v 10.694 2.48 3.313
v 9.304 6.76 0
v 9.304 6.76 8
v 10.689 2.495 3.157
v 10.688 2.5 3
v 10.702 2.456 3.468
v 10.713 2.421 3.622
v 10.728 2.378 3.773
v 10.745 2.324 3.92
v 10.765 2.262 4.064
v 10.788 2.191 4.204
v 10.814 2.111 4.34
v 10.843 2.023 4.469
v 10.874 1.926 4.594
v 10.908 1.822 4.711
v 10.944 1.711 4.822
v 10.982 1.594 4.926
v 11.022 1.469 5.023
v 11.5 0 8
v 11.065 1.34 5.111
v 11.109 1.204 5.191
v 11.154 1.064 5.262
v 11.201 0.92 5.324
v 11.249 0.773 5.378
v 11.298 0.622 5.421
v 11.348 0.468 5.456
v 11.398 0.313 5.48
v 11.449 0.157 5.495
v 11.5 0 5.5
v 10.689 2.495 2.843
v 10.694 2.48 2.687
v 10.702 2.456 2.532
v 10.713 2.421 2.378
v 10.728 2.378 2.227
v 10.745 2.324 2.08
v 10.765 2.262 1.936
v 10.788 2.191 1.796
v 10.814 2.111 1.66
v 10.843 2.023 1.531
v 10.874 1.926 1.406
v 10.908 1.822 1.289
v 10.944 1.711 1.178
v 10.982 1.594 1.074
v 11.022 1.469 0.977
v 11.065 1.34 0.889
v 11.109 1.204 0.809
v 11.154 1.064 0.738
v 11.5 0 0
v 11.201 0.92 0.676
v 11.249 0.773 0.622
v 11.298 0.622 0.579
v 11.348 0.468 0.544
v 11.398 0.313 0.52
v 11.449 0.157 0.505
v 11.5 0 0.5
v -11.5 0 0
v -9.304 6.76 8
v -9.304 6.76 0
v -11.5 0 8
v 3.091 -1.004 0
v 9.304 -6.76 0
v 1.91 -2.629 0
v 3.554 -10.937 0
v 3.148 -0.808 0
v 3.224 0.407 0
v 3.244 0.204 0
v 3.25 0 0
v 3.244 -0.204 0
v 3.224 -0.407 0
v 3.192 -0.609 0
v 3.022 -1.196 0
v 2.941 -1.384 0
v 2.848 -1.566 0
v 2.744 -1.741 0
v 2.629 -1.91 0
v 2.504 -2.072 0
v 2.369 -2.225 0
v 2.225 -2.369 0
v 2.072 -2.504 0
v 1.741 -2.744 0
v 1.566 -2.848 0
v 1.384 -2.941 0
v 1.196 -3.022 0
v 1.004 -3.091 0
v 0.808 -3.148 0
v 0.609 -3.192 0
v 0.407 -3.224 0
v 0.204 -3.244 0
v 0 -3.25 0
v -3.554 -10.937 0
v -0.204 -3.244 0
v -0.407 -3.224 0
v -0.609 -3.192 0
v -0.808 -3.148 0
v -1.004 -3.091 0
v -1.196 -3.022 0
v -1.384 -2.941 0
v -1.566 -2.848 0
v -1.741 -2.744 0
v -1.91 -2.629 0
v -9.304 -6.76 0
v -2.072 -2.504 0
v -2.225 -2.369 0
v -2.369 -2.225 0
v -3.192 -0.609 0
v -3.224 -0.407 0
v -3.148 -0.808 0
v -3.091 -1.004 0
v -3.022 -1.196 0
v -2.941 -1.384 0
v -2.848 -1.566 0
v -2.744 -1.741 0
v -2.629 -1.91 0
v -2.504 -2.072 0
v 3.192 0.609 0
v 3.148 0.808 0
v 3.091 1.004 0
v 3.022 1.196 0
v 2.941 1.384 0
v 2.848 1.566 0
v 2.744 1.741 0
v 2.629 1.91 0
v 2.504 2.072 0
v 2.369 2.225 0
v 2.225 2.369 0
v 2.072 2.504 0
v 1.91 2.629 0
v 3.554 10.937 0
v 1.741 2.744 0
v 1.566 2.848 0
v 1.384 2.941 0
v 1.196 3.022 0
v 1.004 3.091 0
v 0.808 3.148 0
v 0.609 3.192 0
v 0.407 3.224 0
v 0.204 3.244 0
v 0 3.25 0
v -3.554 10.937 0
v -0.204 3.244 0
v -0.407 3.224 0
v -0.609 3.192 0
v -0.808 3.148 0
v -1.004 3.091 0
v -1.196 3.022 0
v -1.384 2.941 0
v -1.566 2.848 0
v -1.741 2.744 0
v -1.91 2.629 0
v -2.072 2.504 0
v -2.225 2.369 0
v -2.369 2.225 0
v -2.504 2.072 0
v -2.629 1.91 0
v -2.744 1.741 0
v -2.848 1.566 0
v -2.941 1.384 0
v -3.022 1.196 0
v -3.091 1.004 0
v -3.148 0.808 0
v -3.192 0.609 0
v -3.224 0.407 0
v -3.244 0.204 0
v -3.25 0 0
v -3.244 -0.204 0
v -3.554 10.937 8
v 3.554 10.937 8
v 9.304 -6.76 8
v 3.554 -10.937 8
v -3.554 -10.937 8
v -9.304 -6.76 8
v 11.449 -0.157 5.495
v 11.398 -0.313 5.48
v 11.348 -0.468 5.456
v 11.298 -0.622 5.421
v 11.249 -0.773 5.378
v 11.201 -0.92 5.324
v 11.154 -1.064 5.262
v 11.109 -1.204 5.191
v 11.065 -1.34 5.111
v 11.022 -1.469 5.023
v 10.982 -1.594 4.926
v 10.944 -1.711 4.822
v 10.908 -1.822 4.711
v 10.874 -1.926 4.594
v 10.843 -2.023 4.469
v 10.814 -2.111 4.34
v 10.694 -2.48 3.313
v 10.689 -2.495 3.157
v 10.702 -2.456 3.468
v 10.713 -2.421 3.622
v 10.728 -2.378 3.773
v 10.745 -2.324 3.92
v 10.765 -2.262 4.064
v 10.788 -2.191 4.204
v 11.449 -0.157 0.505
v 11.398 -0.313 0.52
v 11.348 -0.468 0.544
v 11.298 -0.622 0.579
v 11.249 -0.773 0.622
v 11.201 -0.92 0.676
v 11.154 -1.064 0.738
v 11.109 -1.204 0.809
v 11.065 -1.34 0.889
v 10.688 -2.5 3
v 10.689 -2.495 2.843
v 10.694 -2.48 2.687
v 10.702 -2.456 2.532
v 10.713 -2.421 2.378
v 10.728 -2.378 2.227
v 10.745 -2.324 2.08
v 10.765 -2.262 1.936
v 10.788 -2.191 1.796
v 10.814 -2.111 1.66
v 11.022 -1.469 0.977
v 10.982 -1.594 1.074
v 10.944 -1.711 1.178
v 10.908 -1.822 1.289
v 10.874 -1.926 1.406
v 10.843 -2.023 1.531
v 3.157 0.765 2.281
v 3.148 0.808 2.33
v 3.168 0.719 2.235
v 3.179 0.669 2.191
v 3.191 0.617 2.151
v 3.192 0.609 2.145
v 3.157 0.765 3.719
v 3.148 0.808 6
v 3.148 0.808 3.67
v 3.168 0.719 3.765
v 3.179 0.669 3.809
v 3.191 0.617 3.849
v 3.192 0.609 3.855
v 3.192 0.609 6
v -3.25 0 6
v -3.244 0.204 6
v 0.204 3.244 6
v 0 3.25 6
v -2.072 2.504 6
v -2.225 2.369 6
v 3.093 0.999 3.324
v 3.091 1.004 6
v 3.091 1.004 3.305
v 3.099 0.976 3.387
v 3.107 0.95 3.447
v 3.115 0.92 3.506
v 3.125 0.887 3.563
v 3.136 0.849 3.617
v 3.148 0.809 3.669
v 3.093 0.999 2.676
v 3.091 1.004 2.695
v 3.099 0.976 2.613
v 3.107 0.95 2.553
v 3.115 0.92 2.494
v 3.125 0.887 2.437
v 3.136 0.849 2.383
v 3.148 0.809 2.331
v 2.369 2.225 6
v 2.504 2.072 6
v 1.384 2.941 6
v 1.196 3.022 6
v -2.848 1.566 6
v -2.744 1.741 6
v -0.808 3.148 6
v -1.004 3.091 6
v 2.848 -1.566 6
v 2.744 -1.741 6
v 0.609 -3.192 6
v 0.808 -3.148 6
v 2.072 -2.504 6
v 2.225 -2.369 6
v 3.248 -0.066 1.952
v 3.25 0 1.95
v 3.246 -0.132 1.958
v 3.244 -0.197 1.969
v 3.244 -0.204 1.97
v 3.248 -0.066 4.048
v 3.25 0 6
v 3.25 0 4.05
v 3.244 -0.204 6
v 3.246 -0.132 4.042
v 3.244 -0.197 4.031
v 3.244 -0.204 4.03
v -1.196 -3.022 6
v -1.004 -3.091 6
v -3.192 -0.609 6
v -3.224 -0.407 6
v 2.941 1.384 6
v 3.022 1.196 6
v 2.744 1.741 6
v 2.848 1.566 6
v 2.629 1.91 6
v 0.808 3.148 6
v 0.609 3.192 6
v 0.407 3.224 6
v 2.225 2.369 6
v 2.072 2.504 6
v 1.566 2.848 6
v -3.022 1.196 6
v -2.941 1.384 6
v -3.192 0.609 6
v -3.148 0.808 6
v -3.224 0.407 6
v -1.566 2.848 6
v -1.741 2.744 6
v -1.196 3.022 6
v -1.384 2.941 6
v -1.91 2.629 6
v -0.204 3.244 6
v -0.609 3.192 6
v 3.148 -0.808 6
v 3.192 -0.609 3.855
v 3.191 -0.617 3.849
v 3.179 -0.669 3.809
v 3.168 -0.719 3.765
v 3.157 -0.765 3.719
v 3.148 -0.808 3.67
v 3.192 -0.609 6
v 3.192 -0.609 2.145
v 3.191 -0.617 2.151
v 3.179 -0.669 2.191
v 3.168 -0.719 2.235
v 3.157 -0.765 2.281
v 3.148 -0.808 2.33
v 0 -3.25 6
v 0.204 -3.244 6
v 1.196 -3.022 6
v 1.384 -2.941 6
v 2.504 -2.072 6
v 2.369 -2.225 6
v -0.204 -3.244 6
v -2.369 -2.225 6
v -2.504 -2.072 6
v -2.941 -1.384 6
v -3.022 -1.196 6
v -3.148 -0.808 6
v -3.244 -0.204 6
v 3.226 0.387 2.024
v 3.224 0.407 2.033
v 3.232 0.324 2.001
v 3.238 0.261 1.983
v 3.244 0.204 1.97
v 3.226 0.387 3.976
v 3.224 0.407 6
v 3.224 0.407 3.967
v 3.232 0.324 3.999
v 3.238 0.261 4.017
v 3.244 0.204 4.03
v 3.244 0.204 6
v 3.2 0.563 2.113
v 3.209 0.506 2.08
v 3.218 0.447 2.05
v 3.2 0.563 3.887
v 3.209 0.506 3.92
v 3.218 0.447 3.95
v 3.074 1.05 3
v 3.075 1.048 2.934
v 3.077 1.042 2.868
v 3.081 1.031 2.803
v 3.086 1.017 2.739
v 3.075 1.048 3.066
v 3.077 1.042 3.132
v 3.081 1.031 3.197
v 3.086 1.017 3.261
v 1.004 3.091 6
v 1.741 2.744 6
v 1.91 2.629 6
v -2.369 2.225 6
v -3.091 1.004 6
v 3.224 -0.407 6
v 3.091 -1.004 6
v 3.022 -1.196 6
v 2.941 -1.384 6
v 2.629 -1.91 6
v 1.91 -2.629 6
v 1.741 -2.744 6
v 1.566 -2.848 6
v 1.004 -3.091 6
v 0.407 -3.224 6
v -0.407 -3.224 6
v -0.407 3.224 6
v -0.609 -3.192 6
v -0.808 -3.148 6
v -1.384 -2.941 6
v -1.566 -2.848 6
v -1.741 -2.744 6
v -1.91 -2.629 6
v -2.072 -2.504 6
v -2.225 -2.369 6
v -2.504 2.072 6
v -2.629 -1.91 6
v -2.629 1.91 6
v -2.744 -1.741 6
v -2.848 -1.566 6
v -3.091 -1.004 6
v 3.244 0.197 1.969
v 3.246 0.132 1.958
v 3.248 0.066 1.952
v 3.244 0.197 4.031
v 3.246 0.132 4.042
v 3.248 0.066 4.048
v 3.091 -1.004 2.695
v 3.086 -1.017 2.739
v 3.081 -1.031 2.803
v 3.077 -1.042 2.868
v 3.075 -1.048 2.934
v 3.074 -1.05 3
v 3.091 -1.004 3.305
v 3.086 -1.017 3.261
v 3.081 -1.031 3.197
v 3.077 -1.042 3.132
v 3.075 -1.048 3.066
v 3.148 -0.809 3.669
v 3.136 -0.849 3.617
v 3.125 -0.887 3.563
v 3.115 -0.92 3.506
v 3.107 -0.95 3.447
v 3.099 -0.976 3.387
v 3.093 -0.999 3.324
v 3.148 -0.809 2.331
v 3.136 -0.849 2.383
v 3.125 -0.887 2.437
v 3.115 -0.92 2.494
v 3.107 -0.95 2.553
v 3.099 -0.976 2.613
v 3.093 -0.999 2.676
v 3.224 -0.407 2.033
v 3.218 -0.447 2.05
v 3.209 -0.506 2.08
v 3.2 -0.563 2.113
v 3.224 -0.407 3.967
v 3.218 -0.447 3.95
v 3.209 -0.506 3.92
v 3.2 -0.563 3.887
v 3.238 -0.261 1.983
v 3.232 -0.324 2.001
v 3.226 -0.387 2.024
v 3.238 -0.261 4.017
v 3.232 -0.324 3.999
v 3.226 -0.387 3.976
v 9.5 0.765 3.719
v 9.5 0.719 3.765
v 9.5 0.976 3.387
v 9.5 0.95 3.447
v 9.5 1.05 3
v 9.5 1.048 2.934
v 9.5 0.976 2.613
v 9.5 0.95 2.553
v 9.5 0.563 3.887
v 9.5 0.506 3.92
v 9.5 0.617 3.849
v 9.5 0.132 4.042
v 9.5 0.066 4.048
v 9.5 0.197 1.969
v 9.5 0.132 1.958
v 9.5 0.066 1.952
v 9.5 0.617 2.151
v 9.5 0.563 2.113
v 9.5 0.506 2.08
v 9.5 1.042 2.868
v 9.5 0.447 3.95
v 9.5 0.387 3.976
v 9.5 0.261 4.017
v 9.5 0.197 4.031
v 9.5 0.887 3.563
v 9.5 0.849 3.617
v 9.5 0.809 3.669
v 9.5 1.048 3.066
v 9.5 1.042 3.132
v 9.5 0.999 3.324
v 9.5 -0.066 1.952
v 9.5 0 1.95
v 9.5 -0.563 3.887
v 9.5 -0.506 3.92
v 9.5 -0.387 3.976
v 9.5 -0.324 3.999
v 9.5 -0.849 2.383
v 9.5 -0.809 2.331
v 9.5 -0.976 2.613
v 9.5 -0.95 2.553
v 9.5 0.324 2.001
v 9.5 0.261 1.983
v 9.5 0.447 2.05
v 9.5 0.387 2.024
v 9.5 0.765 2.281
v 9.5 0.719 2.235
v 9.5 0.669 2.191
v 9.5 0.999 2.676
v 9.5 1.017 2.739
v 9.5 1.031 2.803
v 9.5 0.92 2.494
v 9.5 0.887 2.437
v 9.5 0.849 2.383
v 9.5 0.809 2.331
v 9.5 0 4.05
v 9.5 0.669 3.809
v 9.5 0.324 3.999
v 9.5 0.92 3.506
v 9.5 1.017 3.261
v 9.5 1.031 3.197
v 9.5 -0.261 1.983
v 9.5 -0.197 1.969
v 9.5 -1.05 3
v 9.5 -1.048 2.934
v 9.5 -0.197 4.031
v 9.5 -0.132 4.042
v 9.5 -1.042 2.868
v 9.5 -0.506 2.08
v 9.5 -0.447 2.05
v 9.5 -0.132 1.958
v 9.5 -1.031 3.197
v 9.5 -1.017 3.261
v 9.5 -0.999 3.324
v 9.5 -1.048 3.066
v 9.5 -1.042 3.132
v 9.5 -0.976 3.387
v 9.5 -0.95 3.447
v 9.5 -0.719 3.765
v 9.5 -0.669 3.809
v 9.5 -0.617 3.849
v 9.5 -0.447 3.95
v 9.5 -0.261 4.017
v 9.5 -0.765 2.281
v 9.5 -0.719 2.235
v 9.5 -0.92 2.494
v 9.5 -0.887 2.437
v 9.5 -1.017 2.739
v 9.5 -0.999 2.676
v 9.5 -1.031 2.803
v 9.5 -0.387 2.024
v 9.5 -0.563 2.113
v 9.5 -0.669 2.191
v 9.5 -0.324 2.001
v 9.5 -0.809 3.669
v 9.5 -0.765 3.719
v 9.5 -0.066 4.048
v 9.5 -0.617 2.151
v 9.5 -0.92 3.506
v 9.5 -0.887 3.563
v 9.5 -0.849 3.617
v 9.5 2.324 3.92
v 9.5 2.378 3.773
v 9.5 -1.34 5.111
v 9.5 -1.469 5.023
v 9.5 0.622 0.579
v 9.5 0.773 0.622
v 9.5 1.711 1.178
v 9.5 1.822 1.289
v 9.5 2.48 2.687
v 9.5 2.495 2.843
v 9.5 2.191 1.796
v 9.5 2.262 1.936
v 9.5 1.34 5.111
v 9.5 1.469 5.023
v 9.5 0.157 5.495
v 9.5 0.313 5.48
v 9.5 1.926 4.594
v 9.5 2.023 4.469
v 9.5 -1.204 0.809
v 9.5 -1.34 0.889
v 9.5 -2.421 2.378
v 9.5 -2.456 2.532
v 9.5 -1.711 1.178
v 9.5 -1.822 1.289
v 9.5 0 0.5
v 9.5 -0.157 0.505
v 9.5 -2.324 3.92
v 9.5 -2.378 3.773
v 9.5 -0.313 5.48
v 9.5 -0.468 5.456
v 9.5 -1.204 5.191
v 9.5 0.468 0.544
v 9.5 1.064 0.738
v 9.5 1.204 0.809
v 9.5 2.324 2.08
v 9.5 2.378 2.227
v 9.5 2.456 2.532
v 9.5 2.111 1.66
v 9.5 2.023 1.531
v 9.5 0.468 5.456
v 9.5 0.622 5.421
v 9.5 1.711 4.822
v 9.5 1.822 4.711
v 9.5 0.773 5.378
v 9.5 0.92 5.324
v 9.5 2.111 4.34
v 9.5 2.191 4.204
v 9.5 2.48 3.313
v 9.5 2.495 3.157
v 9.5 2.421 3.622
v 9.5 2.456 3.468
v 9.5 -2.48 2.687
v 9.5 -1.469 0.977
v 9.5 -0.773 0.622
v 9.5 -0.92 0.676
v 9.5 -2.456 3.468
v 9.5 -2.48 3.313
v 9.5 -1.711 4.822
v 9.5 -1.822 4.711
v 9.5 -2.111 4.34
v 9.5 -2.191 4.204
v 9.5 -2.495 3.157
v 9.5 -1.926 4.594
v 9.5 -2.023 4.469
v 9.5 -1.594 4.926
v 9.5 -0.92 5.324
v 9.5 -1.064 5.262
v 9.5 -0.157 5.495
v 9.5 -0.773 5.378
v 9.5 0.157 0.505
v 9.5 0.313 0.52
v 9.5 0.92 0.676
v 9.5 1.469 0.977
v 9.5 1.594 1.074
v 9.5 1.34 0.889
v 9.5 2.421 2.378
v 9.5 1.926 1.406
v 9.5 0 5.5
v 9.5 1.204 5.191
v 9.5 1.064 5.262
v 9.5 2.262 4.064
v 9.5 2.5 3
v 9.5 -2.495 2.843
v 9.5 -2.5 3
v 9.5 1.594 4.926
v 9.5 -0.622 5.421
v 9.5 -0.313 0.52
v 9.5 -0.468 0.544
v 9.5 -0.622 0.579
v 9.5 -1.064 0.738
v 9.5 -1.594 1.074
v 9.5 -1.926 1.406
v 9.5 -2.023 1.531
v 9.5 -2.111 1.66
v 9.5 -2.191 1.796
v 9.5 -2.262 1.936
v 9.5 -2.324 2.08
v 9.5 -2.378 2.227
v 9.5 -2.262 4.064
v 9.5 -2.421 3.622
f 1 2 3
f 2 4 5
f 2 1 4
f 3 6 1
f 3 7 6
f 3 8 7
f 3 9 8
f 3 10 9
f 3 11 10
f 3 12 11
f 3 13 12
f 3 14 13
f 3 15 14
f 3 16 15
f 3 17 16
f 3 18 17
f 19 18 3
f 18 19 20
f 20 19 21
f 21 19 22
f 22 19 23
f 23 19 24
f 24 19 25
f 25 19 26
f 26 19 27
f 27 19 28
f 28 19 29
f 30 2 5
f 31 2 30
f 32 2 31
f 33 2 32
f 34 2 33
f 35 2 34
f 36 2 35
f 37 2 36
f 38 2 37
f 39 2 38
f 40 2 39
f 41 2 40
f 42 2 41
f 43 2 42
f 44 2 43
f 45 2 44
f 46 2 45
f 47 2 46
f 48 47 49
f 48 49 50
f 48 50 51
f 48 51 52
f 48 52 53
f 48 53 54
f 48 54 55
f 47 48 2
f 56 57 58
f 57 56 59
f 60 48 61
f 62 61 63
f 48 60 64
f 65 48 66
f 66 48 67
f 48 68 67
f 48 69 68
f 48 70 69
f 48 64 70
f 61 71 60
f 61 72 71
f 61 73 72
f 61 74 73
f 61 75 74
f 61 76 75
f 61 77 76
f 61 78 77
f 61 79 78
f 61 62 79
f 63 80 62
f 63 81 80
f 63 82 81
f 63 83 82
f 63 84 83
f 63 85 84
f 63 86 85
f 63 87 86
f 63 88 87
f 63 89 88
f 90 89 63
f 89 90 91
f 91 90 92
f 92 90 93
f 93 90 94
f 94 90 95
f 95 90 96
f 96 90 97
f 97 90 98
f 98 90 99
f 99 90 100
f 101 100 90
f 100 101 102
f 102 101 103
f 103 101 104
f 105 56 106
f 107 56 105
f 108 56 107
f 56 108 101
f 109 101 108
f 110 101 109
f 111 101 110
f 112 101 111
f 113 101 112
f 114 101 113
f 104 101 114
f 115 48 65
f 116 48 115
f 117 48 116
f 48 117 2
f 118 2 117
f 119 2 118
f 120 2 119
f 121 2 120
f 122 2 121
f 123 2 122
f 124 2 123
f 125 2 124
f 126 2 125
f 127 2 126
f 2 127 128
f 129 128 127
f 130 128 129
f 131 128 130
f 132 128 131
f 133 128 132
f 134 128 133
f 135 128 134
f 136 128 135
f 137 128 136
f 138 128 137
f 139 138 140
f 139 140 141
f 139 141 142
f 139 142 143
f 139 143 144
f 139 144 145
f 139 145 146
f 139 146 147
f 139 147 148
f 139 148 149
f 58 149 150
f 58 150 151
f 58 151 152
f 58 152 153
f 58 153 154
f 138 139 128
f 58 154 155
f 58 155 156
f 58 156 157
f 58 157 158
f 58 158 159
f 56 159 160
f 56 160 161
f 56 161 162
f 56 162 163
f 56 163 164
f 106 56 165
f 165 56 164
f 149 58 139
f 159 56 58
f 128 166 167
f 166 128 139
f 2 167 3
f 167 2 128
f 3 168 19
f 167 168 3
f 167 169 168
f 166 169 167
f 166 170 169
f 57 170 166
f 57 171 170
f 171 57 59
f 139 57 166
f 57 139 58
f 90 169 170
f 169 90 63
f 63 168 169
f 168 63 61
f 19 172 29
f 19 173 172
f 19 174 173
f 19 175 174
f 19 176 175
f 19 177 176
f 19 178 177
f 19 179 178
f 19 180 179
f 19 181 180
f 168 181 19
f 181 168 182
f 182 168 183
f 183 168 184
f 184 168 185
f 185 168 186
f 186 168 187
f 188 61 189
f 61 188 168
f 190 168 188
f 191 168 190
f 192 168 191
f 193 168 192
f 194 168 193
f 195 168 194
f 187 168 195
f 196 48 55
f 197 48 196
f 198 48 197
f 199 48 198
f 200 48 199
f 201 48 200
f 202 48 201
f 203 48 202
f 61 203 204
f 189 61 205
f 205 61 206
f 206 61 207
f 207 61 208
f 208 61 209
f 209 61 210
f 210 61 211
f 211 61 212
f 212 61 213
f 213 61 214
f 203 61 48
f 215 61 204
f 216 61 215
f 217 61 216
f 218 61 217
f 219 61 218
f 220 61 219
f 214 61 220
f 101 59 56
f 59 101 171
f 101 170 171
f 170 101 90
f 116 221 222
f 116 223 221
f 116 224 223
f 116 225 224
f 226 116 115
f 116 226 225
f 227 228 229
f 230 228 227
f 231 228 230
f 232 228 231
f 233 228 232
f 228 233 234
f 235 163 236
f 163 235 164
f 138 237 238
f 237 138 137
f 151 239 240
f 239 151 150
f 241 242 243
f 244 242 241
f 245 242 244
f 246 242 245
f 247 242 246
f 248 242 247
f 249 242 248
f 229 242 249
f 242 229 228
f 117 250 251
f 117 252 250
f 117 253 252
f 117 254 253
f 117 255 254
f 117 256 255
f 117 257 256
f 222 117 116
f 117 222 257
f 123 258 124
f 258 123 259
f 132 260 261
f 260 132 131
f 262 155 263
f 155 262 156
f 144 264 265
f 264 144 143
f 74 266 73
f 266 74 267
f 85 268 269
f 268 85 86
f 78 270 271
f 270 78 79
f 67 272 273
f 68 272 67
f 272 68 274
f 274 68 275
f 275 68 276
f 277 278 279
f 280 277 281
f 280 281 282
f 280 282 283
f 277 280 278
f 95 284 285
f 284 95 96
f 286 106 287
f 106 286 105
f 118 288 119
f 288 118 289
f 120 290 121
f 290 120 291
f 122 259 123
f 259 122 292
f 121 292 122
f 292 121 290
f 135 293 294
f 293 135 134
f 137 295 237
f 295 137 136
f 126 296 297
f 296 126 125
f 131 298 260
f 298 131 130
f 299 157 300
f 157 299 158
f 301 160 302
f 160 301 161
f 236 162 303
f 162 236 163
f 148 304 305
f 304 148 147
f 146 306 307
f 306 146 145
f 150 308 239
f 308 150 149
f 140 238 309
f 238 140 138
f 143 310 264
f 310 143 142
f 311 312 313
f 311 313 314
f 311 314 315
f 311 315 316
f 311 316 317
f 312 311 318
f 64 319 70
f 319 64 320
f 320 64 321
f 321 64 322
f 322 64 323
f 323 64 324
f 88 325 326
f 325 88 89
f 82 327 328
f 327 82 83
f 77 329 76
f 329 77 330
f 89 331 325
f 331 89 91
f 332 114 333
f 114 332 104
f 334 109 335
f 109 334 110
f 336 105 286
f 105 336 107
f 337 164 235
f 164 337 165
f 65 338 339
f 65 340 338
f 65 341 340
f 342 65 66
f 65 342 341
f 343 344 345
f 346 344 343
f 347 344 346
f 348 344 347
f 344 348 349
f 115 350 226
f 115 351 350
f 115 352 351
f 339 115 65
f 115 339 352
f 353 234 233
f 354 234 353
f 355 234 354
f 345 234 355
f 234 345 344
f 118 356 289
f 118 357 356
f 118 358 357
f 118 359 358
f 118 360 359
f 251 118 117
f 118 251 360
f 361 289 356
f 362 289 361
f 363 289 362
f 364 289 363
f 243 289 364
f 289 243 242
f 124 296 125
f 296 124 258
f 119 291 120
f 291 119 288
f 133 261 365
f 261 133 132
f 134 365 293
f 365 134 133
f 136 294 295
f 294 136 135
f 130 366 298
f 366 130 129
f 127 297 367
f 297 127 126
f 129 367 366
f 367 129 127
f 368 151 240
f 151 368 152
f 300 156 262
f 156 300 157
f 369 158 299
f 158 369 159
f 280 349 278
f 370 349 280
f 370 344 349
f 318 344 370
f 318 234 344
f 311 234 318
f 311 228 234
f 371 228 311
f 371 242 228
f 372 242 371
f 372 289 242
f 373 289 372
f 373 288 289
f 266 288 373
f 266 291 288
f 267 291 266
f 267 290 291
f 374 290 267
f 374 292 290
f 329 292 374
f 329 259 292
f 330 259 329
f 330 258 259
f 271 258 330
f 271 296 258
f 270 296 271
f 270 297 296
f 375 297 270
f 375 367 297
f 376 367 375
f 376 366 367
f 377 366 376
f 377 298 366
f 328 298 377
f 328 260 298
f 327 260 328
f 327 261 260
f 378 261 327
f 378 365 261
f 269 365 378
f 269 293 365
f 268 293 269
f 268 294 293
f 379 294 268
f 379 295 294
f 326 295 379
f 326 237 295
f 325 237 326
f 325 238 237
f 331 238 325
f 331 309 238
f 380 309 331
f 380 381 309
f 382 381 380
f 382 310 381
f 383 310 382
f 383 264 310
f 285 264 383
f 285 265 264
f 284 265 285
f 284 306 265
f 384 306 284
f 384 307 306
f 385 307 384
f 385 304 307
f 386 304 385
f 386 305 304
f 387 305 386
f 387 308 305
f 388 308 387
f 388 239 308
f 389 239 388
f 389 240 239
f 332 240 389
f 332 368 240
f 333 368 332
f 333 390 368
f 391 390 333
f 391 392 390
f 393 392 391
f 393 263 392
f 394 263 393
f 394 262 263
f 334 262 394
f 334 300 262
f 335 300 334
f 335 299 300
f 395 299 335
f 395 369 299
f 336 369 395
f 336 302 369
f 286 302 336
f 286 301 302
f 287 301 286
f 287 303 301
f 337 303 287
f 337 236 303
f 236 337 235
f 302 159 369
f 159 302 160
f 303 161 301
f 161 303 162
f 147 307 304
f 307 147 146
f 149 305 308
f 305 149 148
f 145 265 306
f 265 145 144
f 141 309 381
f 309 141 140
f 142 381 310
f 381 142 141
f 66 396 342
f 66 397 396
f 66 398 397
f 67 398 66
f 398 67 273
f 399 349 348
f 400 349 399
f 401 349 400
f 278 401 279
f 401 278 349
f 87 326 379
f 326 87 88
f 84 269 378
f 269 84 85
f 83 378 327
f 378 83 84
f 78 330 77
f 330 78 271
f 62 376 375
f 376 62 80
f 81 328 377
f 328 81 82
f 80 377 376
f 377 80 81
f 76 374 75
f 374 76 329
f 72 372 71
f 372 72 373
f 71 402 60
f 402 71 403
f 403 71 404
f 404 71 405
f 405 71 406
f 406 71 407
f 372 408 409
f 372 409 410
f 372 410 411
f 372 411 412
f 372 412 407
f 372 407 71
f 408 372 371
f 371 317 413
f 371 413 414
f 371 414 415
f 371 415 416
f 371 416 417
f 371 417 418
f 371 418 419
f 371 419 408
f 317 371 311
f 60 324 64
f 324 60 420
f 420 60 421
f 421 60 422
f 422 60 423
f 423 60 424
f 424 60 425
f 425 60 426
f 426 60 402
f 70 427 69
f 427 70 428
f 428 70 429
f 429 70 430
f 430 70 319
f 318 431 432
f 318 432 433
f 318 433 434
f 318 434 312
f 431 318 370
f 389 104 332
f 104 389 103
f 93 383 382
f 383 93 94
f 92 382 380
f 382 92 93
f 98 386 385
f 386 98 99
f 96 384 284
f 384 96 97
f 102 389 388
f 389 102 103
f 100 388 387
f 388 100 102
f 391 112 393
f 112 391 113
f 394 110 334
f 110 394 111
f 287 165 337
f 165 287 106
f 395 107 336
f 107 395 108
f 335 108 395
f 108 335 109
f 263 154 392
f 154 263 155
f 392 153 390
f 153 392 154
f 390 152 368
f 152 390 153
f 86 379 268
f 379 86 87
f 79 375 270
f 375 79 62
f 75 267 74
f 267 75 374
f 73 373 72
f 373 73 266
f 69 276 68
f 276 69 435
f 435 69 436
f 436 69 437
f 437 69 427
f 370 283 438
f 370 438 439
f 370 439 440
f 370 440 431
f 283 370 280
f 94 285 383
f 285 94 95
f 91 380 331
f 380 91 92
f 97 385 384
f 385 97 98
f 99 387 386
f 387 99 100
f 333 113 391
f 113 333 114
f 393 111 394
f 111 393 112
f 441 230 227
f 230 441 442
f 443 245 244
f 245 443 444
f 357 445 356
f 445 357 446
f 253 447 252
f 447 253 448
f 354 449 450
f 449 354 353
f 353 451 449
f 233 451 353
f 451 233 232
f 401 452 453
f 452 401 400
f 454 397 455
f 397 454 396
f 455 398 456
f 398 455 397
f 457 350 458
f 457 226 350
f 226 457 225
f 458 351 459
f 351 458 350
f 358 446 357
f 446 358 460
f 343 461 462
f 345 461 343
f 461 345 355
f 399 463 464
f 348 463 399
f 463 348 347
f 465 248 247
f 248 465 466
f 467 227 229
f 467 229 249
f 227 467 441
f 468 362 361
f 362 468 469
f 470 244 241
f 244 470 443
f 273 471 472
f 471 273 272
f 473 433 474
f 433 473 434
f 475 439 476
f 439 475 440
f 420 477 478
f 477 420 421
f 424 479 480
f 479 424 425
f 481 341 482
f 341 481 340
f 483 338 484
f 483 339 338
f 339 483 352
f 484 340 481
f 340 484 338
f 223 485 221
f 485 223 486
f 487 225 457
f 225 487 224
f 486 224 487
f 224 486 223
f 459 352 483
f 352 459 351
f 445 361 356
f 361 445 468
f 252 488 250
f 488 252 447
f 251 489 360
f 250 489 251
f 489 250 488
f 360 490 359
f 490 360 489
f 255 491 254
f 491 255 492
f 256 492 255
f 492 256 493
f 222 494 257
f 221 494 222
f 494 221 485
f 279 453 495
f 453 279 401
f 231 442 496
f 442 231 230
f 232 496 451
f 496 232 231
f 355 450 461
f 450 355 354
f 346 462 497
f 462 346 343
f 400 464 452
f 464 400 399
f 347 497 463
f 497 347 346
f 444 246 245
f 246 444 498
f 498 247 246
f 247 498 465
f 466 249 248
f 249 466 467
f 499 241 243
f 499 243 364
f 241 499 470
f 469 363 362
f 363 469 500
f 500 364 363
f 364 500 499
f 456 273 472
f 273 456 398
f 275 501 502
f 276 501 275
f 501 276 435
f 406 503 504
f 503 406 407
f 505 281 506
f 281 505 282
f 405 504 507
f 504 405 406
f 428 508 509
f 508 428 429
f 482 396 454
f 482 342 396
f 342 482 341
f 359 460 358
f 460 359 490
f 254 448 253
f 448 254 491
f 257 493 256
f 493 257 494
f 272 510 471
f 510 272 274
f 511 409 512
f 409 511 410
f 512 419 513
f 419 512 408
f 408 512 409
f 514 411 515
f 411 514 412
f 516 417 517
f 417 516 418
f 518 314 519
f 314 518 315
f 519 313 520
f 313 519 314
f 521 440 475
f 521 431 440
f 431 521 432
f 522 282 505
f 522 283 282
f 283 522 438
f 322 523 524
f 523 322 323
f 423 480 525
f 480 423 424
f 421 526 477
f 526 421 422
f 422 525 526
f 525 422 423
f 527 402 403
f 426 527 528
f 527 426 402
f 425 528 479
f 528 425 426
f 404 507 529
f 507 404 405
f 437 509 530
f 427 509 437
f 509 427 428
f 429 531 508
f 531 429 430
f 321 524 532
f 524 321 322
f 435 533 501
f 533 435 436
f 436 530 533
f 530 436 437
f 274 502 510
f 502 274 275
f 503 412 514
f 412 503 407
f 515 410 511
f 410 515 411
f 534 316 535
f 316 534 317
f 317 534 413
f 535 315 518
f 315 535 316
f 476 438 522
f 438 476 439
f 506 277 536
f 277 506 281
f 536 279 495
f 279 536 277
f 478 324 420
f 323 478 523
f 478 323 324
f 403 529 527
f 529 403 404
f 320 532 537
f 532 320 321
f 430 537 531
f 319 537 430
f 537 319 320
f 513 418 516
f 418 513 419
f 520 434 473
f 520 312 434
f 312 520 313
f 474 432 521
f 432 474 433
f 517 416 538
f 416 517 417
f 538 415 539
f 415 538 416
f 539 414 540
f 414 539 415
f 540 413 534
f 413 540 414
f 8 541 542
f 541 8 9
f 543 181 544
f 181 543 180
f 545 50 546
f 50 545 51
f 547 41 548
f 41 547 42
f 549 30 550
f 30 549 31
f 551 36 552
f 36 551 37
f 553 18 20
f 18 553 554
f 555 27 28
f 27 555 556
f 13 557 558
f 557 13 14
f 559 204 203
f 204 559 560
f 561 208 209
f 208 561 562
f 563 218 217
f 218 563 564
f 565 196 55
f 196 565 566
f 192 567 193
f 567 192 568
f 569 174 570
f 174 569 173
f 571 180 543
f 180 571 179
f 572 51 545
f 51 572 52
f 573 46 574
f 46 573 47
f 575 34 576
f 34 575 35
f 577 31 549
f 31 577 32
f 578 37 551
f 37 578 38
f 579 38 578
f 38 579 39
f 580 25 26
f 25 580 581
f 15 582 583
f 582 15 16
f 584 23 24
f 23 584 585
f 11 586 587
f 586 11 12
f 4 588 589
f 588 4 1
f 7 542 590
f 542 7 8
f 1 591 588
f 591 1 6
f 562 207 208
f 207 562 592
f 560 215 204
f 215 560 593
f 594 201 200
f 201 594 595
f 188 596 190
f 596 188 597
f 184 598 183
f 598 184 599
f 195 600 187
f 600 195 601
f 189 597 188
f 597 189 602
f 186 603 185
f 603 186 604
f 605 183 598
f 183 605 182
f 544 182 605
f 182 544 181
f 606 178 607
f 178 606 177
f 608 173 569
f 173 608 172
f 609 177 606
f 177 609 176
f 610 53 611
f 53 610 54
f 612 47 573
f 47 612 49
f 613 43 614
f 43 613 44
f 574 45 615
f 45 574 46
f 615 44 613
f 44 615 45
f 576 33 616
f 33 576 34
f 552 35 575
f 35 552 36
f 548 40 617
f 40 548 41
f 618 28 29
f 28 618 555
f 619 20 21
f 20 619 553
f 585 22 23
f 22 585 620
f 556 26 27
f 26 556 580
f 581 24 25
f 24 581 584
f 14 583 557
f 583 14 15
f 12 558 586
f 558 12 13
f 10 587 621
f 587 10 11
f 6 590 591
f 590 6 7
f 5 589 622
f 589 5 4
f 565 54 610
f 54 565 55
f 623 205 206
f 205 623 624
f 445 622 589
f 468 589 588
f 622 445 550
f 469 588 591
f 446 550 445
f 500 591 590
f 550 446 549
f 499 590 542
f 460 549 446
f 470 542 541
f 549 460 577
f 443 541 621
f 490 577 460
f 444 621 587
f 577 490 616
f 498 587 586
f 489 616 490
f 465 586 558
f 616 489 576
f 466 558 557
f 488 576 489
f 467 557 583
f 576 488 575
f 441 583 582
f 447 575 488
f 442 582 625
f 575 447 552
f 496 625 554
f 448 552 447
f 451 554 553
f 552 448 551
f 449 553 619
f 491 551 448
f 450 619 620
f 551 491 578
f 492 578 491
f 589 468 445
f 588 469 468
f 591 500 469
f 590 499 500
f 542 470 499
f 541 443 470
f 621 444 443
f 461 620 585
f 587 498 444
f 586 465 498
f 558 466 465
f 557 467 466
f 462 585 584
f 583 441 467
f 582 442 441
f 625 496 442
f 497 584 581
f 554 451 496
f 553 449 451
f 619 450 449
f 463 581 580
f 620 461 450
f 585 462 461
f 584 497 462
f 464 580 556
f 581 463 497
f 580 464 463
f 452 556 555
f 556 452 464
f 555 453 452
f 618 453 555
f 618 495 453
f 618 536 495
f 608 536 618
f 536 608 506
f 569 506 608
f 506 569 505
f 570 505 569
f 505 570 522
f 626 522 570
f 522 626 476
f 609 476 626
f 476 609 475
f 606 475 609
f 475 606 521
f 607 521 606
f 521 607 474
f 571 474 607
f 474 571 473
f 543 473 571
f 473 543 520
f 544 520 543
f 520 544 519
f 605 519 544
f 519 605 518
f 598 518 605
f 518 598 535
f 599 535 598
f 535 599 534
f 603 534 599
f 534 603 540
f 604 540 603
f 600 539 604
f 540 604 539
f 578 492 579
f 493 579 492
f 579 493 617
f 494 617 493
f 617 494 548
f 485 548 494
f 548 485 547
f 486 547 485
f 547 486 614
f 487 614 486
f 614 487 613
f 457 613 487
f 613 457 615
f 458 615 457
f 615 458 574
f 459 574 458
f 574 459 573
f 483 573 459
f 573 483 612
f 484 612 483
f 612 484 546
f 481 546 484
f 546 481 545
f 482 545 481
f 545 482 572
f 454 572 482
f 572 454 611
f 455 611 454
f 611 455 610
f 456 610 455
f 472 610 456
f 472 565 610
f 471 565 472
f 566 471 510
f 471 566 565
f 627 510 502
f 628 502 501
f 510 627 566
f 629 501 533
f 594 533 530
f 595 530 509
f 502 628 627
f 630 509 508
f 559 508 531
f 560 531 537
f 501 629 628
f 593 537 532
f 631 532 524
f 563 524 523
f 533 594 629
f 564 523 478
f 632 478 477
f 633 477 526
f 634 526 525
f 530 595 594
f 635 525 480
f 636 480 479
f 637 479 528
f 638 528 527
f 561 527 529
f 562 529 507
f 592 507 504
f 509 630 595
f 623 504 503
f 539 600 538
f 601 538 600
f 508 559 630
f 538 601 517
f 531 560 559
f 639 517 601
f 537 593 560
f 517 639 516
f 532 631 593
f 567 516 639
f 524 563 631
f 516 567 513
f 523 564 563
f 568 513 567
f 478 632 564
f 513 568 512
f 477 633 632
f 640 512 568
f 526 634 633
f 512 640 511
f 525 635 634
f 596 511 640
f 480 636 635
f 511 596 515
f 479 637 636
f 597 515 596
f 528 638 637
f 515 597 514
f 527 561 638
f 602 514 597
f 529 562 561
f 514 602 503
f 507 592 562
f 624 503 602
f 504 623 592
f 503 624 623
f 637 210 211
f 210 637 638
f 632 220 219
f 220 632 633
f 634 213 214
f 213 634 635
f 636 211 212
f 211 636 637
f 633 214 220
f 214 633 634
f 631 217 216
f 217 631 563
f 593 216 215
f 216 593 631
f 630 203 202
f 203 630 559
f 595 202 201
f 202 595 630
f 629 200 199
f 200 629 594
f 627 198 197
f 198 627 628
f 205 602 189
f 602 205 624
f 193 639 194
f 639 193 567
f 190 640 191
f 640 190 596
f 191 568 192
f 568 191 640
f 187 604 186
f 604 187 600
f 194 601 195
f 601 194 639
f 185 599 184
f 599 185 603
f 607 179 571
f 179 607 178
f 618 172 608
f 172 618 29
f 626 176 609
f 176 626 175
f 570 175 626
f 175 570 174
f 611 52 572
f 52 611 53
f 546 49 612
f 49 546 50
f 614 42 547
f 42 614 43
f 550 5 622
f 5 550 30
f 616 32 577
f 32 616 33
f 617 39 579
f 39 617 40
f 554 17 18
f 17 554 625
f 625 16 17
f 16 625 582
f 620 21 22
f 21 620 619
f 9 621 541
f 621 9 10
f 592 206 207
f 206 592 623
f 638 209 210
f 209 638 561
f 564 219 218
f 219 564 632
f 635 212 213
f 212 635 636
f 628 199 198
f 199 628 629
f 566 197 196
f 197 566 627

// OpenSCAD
D=23;
Da=6+0.5;
H=8;
$fn=100;

difference()
{
    cylinder(d=D,h=H,$fn=10);
    cylinder(d=Da,h=H-2);
    translate([0,0,(H-2)/2]) rotate([0,90,0]) cylinder(d=2.1,h=D/2);
    translate([D/2-2,0,(H-2)/2]) rotate([0,90,0]) cylinder(d=5,h=D/2);
}
